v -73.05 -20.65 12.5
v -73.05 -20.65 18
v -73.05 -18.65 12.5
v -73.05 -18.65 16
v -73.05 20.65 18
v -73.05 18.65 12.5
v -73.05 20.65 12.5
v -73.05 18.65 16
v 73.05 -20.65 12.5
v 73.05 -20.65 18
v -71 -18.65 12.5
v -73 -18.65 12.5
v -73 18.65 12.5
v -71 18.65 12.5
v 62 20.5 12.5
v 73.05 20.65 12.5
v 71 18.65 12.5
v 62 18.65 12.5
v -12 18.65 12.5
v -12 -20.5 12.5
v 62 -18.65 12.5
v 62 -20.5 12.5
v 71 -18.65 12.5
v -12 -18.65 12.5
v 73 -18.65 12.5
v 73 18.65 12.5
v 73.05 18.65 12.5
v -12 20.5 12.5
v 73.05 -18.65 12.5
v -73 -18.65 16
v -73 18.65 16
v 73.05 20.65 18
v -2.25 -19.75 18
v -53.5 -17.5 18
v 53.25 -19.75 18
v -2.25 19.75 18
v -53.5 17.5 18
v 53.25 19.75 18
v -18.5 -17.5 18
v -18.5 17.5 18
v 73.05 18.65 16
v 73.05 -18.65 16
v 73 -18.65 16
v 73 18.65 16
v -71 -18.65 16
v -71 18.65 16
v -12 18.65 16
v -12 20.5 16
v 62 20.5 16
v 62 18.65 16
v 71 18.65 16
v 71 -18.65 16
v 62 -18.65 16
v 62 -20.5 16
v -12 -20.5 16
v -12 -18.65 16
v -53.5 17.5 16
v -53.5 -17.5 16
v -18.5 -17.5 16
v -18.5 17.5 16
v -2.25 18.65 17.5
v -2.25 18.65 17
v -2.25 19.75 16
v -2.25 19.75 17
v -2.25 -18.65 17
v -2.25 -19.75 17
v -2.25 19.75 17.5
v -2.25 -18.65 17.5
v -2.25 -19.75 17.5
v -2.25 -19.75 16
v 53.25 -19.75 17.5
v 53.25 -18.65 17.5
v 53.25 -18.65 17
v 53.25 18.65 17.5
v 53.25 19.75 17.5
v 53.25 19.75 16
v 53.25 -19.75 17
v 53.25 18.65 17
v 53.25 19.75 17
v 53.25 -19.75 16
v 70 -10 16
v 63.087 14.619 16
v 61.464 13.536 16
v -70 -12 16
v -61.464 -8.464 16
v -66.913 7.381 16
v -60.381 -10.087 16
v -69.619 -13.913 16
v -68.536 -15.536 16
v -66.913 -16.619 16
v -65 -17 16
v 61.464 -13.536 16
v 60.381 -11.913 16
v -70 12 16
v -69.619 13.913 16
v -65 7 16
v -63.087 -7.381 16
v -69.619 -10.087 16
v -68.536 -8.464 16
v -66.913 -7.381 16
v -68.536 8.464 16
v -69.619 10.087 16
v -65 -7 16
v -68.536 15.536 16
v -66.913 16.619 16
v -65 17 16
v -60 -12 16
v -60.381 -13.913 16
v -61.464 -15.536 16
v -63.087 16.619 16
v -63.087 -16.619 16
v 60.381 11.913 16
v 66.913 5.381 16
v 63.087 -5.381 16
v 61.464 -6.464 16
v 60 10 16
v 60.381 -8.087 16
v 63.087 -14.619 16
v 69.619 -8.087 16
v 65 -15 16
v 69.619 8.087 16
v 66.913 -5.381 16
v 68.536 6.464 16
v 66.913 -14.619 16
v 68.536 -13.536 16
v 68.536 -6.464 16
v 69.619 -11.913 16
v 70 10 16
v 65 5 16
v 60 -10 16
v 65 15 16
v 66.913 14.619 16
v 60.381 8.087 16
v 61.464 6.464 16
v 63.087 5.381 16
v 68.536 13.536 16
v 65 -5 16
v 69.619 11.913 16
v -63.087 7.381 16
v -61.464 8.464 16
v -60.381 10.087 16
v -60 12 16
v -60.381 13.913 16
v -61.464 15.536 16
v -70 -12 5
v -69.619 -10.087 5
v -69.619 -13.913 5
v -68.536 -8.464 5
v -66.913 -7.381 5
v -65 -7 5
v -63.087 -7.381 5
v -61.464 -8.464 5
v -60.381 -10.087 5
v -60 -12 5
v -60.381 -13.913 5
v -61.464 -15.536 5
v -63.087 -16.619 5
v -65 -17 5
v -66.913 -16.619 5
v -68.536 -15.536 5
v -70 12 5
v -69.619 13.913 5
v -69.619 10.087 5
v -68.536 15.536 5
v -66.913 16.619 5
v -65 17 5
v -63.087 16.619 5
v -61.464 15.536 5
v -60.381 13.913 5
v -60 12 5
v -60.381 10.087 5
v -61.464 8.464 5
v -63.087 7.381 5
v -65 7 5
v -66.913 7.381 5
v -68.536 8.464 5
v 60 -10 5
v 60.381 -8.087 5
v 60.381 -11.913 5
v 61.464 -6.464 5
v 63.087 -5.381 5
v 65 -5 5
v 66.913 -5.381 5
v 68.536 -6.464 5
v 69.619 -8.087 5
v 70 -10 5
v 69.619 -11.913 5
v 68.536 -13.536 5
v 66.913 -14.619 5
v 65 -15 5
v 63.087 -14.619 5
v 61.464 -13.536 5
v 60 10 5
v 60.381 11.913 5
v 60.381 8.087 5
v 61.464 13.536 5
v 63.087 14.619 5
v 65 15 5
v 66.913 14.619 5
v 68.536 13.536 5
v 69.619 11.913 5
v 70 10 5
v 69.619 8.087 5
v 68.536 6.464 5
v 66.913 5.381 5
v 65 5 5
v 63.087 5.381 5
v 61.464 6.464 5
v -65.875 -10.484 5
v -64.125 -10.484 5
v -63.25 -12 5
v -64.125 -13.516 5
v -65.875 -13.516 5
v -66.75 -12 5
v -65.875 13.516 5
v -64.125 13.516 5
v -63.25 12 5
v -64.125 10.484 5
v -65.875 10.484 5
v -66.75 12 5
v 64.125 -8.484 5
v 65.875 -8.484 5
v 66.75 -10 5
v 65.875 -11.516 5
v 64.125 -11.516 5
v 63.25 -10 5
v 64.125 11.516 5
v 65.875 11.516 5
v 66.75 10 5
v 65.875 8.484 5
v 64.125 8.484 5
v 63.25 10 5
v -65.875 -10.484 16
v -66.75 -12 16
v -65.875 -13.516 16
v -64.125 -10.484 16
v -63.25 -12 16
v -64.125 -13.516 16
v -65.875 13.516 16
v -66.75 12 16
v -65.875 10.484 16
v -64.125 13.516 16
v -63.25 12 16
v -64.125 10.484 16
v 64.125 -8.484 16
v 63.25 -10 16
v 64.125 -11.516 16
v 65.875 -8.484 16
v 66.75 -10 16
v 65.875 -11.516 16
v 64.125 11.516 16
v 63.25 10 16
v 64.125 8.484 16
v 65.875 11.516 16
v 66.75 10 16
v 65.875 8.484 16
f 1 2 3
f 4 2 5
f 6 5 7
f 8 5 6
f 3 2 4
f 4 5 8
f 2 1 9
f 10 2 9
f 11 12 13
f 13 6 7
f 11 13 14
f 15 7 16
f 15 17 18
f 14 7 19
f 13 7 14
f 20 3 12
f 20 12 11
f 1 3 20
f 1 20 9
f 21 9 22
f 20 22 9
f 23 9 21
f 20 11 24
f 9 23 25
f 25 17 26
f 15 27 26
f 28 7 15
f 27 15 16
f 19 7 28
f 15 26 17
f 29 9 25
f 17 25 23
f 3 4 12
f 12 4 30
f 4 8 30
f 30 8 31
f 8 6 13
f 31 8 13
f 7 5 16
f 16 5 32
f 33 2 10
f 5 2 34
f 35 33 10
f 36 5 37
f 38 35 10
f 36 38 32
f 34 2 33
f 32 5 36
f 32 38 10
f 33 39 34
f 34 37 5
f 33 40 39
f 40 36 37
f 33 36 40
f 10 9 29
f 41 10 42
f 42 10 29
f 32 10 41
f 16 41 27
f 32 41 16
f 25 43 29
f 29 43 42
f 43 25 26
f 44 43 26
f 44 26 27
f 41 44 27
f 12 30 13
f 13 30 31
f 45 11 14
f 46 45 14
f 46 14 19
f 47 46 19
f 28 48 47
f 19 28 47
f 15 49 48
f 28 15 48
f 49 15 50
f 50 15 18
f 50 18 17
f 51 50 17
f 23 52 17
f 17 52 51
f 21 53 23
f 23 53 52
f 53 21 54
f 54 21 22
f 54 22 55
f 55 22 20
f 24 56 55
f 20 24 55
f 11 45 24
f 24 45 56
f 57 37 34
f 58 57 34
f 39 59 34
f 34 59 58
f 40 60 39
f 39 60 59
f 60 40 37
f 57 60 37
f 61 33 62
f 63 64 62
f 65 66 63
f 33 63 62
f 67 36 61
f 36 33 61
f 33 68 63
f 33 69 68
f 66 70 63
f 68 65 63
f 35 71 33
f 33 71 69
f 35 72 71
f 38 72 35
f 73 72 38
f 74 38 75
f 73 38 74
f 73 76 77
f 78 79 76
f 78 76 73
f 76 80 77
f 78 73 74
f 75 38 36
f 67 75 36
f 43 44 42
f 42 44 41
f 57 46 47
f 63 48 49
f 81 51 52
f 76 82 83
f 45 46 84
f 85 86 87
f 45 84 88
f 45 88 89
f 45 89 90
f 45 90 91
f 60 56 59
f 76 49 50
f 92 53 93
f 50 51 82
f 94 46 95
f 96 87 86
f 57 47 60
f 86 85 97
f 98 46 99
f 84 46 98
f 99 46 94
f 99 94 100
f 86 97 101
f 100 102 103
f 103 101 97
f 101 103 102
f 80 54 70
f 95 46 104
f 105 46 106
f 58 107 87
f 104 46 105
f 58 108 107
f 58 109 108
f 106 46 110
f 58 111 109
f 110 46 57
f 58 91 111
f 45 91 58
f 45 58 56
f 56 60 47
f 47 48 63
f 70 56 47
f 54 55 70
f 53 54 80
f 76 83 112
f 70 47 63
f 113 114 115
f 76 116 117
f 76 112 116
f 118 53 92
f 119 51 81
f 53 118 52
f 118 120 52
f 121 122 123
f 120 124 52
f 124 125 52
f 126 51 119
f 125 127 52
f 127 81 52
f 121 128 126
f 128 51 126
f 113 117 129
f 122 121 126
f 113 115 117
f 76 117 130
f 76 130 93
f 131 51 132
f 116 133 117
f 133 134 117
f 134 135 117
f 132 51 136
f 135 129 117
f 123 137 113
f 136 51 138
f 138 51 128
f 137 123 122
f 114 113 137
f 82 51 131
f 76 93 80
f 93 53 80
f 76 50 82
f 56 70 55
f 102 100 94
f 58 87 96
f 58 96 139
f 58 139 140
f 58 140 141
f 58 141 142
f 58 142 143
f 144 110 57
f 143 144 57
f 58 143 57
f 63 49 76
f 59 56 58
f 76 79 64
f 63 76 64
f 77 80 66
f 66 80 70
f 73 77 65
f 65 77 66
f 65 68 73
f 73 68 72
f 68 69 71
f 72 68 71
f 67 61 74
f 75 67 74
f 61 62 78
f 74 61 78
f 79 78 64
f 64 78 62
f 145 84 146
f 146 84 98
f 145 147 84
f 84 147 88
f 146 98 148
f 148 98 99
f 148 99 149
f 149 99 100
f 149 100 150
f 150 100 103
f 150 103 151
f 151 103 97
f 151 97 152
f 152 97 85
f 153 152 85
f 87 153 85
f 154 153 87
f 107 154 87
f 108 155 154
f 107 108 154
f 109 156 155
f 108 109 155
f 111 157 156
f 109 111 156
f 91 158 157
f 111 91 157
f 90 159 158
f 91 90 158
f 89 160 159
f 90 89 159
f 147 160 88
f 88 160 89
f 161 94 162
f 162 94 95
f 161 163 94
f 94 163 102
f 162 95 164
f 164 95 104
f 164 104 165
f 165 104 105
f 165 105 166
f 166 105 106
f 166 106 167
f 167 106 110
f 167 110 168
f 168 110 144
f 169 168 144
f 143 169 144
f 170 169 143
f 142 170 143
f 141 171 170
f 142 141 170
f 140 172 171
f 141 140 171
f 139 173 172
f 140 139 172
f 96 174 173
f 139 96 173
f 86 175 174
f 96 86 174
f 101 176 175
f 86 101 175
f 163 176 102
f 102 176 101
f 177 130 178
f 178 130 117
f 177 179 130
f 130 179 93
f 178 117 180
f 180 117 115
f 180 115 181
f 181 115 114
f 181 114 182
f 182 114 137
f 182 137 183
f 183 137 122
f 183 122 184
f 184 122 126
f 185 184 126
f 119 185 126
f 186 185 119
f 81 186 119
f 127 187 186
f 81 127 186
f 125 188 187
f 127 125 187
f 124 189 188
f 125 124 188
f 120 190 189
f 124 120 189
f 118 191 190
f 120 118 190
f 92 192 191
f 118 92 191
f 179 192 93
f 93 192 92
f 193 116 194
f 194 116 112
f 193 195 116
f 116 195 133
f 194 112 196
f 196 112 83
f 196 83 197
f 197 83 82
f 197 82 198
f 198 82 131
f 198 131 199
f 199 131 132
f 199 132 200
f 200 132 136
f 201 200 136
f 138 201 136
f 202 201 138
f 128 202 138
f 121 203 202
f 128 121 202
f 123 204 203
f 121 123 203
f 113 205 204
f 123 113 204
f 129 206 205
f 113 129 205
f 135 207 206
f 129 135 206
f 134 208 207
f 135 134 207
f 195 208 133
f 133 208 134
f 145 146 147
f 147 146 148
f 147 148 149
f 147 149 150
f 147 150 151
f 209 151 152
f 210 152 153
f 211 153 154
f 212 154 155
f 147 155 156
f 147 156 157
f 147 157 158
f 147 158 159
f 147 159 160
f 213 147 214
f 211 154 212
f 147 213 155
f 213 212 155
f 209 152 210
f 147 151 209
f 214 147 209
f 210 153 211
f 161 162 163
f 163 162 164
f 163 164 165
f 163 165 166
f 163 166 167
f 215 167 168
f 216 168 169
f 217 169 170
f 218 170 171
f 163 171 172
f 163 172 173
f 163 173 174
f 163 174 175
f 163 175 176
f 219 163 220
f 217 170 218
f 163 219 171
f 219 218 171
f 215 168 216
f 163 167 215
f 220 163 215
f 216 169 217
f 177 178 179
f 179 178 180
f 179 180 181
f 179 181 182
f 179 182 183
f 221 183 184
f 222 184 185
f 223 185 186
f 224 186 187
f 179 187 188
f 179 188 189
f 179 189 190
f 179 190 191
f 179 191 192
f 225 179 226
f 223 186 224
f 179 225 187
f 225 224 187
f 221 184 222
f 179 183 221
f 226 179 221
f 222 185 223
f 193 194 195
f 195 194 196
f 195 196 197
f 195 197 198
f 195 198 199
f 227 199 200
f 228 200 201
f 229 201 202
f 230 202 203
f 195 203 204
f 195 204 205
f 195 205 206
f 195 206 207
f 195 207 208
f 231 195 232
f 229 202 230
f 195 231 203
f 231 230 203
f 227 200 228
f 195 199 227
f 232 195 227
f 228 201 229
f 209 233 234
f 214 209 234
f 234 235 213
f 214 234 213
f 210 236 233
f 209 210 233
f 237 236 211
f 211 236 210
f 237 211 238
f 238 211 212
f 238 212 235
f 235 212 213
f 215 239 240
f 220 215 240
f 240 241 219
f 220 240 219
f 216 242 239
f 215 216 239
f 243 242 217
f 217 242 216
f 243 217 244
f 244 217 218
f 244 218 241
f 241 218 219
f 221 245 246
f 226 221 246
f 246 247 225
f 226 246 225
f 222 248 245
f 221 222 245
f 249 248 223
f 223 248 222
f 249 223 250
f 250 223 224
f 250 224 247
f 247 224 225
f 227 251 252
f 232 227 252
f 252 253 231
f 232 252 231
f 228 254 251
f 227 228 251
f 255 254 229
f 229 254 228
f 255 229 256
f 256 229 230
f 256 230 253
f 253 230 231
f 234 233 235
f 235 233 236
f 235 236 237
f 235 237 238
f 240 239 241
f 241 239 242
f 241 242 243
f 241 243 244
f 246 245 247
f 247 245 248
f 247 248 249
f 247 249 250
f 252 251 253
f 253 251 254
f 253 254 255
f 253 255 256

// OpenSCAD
module trim_tftFacePlate_facia(){
	difference(){
		//mainBox
		translate([0,0,17]){
			color([0.6,0.8,0.2]) cube(size=[146.1,41.3,2],center=true);
		}
		//displayHole
		translate([25.5,0,16.75]){
			color([0.2,0.8,0.2]) cube(size=[55.5,39.5,5],center=true);
		}
		//keyPadHole
		translate([-36,0,16.75]){
			color([0.2,0.8,0.2]) cube(size=[35,35,5],center=true);
		}
	}
	//topAndBottomTrim
	difference(){
		translate([0,-19.65,15]){
			cube(size=[146.1,2,5],center=true);
		}
		translate([25,-17.5,9]){
			cube(size=[74,6,16],center=true);
		}
	}
	difference(){
		translate([0,19.65,15]){
			cube(size=[146.1,2,5],center=true);
		}
		translate([25,17.5,9]){
			cube(size=[74,6,16],center=true);
		}
	}
	//sideTrim
	translate([-72,0,15]){
		cube(size=[2,41.3,5],center=true);
	}	
	translate([72,0,15]){
		cube(size=[2,41.3,5],center=true);
	}	
	difference(){
		//screwBlocks
		translate([-65,12,11]){
			cylinder(r=5,h=12,center=true);
		}
		//screwHoles
		translate([-65,12,11]){
			cylinder(r=1.75,h=15,center=true);
		}
	}
	difference(){
		translate([-65,-12,11]){
			cylinder(r=5,h=12,center=true);
		}
		translate([-65,-12,11]){
			cylinder(r=1.75,h=15,center=true);
		}
	}
	difference(){
		translate([65,10,11]){
			cylinder(r=5,h=12,center=true);
		}
		translate([65,10,11]){
			cylinder(r=1.75,h=15,center=true);
		}
	}
	difference(){
		translate([65,-10,11]){
			cylinder(r=5,h=12,center=true);
		}
		translate([65,-10,11]){
			cylinder(r=1.75,h=15,center=true);
		}
	}
}

trim_tftFacePlate_facia();
